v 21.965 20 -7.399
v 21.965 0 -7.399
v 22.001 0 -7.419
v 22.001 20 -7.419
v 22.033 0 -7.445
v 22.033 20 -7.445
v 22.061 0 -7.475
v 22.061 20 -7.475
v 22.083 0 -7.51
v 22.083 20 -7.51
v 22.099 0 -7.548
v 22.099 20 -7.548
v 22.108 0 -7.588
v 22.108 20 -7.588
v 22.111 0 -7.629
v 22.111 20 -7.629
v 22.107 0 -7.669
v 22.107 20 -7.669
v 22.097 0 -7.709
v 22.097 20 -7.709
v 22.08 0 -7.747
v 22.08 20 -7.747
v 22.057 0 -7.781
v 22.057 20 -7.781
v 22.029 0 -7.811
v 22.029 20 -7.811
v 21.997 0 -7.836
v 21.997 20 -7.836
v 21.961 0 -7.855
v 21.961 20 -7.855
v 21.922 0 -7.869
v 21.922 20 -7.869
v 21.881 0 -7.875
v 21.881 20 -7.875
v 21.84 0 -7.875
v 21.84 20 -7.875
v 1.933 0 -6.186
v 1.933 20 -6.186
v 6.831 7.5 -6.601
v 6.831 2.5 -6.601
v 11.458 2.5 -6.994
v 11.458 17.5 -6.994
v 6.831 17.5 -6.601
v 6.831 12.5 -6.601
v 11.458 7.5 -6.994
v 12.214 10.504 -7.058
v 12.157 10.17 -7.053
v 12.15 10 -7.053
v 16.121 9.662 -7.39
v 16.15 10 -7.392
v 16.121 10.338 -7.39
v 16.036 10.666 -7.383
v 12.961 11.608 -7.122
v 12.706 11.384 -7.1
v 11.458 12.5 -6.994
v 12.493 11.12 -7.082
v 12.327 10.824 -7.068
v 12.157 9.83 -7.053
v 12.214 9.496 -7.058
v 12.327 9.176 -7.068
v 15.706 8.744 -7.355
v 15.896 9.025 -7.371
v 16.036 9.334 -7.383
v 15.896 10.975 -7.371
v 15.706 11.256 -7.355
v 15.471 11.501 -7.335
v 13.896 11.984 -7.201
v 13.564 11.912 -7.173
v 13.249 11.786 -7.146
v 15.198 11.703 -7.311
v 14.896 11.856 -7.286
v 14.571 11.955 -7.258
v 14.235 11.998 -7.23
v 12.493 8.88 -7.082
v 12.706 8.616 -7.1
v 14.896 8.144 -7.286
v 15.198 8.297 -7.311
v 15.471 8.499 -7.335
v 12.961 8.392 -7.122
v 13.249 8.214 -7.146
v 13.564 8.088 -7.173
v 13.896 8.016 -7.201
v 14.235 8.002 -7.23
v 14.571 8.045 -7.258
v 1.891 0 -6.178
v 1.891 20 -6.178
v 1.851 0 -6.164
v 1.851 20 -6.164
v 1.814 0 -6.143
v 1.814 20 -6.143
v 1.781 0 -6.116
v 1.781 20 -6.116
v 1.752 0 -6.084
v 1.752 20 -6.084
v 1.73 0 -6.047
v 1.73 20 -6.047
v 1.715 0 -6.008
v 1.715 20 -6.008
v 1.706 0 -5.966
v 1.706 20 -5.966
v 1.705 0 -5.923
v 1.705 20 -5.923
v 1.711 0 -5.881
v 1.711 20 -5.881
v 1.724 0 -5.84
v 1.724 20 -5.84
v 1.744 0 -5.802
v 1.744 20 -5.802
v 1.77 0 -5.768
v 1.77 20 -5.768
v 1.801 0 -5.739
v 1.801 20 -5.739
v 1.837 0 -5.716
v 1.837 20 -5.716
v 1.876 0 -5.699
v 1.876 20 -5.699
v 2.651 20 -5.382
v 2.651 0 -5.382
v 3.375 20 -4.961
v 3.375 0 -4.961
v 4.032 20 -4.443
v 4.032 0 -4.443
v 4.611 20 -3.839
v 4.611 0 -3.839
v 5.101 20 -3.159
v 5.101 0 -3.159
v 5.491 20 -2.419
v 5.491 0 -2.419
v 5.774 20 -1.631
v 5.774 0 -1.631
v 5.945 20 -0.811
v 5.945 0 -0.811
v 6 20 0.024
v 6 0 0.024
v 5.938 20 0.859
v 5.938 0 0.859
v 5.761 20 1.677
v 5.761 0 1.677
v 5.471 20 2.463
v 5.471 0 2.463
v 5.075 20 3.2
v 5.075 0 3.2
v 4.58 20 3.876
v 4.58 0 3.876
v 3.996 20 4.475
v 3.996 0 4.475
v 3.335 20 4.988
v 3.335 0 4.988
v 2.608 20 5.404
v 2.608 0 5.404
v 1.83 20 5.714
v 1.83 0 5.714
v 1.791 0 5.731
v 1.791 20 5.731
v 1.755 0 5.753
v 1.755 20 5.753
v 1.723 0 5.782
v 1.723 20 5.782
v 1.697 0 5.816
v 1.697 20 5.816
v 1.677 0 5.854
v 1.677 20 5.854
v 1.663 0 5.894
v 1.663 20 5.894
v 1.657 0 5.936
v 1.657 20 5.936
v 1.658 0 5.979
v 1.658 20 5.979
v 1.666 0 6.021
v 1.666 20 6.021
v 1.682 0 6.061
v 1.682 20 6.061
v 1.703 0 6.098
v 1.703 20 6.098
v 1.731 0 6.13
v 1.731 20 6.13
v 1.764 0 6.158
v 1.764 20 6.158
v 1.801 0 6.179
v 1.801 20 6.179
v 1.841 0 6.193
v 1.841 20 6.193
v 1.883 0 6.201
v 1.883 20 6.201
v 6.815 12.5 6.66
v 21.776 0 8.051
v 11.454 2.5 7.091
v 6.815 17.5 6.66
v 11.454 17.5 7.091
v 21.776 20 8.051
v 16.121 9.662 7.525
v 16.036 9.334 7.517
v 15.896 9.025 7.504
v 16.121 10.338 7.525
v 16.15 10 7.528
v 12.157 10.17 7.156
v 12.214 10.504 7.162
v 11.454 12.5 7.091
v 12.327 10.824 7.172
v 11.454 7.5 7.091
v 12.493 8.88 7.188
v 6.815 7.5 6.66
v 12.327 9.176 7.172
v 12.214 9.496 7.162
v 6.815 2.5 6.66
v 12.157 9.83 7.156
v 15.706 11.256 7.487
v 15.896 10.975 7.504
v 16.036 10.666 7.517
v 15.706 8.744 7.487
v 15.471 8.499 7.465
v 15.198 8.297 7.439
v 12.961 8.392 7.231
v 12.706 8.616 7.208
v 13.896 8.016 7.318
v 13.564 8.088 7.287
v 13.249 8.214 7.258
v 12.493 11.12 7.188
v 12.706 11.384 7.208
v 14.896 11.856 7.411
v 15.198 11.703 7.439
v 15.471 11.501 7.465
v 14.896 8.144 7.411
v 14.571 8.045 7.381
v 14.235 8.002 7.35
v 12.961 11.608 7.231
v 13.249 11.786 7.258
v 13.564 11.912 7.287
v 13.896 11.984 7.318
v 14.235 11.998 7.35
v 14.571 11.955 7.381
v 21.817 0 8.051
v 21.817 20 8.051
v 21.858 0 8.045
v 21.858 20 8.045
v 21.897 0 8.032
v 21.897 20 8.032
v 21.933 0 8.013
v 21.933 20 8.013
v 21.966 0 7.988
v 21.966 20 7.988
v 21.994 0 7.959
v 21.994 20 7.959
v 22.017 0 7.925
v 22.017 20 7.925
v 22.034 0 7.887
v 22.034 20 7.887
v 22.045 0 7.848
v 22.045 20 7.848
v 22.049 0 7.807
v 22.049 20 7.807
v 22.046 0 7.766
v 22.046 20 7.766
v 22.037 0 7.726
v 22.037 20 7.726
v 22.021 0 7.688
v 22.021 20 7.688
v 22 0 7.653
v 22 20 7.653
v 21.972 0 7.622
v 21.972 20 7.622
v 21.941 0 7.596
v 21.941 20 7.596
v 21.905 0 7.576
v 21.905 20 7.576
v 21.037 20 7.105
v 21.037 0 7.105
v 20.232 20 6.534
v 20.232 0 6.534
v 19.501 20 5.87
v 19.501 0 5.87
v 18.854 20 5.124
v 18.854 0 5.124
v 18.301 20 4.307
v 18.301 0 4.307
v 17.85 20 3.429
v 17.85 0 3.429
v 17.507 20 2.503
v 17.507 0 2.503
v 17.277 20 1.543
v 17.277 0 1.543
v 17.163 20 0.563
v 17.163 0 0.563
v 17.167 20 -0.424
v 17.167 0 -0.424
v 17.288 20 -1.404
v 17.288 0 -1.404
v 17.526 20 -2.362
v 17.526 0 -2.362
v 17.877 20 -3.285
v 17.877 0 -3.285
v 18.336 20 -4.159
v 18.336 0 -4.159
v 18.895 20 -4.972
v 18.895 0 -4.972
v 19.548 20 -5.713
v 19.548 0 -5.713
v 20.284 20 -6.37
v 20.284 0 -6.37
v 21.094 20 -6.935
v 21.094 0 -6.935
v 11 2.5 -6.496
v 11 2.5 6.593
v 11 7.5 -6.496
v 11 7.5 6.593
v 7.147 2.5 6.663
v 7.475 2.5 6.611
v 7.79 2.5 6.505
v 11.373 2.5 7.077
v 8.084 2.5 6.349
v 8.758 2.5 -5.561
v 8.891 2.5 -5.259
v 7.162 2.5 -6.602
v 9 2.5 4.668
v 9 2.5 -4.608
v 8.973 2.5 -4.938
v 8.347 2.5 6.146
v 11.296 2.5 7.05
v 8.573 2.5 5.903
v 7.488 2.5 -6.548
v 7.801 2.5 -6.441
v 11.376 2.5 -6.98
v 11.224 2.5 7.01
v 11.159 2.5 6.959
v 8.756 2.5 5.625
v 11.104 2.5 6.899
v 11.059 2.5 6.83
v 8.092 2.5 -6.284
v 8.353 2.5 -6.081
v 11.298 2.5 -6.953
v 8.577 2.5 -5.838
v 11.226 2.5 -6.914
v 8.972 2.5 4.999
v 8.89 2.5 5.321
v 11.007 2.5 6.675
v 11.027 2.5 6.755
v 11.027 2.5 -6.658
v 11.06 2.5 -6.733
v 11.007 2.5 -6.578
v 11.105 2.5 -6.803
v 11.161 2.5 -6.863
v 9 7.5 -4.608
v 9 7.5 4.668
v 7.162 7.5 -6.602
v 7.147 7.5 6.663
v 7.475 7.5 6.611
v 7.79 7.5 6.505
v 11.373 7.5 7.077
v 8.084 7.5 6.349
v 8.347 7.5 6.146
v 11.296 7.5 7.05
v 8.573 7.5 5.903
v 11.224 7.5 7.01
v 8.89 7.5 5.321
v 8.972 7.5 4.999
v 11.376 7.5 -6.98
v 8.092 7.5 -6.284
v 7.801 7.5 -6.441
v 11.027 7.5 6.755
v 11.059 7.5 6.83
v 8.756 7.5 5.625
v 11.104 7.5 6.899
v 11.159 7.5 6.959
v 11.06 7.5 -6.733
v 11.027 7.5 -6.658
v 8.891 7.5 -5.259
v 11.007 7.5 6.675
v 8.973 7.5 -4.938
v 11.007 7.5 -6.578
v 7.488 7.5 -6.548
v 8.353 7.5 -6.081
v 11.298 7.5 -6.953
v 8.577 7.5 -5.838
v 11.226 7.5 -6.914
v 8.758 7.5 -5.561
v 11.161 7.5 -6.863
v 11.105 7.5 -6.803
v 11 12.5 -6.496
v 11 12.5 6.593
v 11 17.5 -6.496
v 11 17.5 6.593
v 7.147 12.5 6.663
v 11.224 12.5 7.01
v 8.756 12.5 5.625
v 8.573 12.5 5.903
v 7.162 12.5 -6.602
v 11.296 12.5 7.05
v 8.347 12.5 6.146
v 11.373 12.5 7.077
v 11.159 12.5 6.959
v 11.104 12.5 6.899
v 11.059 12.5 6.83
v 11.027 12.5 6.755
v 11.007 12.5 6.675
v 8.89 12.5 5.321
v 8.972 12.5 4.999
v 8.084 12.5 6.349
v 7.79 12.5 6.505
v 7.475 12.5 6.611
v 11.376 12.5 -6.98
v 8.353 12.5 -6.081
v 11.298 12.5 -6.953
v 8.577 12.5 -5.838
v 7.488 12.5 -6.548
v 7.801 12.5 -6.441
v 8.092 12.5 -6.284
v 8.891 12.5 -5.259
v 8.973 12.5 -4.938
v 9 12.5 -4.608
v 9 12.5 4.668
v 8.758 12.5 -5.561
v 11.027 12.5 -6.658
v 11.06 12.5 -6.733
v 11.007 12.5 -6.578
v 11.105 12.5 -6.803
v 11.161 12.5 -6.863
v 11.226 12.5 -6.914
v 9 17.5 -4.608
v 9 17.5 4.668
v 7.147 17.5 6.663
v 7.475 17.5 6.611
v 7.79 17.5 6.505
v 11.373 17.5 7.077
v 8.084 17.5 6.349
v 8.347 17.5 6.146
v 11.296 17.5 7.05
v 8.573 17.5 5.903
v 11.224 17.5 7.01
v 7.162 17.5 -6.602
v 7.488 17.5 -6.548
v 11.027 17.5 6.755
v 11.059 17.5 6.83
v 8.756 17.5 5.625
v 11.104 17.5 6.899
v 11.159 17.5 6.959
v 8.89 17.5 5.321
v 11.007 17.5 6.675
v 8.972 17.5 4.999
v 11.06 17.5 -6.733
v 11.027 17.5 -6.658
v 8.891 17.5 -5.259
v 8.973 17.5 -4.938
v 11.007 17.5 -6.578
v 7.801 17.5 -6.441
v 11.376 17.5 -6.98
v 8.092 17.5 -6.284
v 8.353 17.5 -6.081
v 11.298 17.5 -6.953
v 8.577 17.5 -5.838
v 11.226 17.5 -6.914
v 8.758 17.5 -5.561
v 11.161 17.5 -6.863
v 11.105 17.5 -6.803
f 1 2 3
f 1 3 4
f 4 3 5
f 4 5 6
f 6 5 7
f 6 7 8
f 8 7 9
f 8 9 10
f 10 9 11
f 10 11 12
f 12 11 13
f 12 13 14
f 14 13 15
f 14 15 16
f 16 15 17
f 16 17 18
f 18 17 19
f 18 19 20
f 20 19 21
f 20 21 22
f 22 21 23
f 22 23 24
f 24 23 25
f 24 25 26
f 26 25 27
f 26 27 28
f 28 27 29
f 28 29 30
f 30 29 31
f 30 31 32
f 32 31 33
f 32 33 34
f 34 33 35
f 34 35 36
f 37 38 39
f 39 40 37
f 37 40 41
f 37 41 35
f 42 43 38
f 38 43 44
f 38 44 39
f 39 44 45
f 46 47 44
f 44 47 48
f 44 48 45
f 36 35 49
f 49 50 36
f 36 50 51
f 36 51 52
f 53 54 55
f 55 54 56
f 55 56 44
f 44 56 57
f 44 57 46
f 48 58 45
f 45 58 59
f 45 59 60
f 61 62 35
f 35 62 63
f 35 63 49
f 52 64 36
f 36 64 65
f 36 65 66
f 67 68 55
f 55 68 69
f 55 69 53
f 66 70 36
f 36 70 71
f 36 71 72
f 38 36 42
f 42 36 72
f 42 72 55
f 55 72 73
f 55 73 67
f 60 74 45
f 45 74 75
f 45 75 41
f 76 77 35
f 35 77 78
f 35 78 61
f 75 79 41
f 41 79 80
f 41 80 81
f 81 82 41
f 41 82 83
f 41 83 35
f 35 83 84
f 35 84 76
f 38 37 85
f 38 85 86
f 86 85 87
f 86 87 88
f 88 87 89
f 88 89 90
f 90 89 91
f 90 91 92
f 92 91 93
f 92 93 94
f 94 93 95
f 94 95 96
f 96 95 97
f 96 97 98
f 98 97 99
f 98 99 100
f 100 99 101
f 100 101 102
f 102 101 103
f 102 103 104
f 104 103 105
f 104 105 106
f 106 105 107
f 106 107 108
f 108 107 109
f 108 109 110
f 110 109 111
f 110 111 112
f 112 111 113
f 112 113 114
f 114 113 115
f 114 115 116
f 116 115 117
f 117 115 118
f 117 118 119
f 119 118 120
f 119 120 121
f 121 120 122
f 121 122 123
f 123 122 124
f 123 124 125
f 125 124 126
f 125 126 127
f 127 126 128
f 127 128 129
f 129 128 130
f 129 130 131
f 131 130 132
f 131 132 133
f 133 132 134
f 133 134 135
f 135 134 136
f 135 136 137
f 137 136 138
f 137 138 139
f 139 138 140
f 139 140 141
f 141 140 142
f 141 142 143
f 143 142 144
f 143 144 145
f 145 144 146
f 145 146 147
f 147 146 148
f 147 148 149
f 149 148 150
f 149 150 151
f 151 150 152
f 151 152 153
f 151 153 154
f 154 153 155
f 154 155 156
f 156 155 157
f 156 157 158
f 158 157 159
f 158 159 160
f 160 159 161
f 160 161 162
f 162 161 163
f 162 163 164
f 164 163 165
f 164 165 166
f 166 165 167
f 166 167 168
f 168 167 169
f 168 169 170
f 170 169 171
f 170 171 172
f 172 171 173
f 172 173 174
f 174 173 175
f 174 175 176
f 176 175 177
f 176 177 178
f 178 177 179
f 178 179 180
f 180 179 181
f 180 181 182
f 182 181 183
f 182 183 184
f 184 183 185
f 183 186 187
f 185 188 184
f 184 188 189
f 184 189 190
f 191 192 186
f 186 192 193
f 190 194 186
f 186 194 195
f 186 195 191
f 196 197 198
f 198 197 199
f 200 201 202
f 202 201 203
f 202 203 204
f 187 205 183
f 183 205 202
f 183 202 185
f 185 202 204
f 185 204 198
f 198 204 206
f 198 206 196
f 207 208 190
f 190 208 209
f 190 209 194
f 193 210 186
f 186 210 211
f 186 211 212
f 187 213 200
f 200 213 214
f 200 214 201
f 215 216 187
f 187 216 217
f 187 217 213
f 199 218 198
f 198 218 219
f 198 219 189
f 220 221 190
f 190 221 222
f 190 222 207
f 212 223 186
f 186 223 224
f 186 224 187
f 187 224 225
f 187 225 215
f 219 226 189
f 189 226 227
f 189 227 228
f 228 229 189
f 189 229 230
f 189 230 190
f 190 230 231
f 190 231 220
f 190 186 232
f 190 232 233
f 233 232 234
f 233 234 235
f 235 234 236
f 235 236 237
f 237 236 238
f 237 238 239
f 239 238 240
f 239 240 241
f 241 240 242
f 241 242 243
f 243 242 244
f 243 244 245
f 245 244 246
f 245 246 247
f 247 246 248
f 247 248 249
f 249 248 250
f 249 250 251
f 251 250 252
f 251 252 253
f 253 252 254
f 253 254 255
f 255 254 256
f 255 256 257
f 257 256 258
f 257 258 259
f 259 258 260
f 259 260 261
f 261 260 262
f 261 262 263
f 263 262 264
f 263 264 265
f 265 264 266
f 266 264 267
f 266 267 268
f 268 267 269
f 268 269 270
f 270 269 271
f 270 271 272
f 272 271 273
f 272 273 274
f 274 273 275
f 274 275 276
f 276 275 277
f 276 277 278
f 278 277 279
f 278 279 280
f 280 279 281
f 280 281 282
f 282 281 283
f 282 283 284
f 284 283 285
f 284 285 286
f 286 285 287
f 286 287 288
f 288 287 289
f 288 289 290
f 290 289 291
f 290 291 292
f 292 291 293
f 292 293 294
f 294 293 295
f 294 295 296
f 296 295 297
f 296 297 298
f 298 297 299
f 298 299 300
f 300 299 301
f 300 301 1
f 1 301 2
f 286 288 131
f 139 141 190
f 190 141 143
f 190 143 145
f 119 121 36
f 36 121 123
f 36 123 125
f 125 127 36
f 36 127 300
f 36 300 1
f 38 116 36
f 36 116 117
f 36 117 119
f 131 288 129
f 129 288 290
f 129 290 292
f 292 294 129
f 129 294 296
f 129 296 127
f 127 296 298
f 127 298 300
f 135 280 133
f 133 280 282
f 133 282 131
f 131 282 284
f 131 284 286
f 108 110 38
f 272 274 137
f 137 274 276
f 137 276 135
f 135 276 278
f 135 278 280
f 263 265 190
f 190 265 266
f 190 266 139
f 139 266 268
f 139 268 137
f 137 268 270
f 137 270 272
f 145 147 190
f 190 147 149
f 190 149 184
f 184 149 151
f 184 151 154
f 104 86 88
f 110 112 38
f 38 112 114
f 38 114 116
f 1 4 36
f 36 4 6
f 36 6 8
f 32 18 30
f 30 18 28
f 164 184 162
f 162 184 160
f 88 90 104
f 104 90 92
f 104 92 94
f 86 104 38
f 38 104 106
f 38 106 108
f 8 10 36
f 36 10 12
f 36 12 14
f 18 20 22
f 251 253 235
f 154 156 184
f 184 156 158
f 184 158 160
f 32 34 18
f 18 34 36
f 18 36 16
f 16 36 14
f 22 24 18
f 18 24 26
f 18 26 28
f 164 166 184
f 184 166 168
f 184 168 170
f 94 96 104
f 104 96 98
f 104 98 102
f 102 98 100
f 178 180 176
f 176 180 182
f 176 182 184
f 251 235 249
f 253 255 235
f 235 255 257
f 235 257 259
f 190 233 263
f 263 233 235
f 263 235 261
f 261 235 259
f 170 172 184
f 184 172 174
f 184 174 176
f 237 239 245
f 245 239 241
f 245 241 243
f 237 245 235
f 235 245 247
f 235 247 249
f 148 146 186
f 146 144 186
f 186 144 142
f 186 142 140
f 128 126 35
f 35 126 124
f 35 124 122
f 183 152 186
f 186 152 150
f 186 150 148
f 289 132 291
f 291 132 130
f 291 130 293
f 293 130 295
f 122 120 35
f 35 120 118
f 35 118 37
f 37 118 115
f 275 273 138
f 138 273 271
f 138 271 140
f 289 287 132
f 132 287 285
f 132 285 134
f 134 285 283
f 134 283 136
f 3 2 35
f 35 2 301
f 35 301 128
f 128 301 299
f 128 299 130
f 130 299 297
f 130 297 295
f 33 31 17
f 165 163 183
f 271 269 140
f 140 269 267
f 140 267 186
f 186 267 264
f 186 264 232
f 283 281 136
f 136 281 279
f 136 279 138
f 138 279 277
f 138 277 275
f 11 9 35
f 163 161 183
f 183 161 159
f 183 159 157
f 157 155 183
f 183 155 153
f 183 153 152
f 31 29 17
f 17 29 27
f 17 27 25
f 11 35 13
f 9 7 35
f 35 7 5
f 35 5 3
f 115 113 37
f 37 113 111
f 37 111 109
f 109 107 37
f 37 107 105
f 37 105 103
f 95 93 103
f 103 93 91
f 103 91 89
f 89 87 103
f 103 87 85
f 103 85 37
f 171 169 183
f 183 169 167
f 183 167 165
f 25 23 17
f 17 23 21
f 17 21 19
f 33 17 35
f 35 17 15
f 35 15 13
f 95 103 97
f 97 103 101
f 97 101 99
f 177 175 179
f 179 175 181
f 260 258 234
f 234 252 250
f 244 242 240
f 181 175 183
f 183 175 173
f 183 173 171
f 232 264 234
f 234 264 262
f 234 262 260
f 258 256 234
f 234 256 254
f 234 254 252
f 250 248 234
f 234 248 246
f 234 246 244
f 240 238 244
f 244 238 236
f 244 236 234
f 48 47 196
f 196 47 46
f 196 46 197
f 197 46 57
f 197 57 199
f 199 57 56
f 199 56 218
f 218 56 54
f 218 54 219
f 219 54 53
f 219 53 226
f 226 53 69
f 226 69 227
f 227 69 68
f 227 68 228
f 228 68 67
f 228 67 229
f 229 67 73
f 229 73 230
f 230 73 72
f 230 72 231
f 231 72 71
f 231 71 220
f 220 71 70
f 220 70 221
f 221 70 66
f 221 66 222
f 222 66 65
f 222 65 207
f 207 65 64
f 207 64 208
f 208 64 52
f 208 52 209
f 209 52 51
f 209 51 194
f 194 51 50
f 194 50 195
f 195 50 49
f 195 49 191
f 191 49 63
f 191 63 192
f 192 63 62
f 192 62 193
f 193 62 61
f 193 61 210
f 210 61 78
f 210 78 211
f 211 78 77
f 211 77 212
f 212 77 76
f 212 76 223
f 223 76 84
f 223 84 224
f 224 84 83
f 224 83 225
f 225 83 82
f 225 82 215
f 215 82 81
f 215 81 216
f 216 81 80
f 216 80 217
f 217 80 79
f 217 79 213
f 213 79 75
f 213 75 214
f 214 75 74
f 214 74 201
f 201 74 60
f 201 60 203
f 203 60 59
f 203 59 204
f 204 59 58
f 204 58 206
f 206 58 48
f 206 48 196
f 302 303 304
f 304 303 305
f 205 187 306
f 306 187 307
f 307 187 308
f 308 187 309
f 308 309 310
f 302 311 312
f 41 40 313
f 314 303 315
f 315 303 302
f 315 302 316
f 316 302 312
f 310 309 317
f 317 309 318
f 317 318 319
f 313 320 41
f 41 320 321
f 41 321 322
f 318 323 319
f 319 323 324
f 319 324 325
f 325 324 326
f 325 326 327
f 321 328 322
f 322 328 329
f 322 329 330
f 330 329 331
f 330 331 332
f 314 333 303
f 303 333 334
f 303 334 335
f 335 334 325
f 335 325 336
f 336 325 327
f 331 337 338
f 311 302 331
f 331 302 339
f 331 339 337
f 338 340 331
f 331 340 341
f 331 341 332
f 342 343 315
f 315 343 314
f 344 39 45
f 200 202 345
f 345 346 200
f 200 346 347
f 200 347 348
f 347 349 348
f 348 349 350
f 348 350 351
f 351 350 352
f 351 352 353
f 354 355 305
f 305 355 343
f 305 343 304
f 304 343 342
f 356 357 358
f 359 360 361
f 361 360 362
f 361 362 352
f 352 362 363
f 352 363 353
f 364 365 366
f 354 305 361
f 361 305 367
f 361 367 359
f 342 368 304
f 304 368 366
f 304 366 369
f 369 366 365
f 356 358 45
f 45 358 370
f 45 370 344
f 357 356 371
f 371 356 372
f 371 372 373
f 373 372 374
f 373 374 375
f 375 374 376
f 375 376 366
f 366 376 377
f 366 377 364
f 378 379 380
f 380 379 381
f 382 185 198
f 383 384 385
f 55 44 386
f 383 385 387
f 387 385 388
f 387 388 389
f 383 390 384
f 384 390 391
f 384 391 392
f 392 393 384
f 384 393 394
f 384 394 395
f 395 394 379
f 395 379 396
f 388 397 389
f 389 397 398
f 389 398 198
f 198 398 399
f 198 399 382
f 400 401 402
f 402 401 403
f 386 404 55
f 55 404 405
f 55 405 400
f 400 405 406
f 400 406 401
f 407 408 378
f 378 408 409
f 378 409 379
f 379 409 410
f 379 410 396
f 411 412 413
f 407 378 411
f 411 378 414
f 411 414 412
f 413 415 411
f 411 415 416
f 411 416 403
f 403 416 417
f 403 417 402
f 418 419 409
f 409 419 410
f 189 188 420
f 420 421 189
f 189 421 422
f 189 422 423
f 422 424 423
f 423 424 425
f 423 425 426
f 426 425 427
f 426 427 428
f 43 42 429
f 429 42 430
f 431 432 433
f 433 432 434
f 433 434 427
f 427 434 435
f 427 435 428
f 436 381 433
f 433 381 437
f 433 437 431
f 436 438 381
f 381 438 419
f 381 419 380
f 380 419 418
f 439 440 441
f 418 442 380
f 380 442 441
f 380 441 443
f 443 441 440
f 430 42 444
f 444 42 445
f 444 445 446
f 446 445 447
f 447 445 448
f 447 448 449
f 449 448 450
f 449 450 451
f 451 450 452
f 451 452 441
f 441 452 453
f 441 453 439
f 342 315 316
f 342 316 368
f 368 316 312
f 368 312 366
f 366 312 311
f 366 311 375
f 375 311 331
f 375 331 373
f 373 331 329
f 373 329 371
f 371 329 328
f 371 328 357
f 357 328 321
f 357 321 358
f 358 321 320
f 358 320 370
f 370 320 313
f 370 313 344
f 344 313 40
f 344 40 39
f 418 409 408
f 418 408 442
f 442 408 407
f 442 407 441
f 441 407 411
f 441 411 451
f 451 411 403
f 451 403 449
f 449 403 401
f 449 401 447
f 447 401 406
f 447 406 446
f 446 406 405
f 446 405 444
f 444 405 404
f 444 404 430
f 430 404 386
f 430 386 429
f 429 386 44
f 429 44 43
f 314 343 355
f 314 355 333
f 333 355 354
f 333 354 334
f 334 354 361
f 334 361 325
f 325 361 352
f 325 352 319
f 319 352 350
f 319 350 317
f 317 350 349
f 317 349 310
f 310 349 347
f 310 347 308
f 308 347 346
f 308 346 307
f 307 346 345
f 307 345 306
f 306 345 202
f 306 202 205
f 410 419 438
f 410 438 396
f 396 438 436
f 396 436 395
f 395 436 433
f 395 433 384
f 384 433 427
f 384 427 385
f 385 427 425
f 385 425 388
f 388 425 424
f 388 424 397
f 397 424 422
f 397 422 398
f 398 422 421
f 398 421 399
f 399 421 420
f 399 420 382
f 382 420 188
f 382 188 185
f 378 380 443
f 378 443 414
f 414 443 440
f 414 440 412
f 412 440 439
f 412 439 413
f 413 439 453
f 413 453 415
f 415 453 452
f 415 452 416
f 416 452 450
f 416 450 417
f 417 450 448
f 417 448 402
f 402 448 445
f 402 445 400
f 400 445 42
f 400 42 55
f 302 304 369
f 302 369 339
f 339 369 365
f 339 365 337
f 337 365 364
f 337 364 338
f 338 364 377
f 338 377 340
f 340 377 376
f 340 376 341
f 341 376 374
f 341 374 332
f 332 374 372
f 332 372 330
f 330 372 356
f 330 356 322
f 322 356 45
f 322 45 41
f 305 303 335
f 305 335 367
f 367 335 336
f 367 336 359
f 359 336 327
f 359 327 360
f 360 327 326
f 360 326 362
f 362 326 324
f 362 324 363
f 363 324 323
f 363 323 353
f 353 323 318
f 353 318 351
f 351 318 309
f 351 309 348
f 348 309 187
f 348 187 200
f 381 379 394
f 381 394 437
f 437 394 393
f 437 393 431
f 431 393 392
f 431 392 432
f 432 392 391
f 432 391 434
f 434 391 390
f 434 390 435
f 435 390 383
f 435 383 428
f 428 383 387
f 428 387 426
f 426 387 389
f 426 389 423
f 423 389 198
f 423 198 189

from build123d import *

# Parameters (mm, degrees)
BOSS_EXTRUDE1_DEPTH     = 20
CUT_EXTRUDE1_DEPTH      = 31.882754065
CUT_EXTRUDE1_DEPTH_BACK = 31.882754065
SKETCH2_R               = 2
SKETCH2_W               = 2
SKETCH2_H               = 5
FILLET1_R               = 2
FILLET2_R               = 0.5


with BuildPart() as part:
    # Sketch1 → Boss-Extrude1 (new body)
    with BuildSketch(Plane(origin=(0, 0, 0), x_dir=(1, 0, 0), z_dir=(0, 1, 0))):
        with BuildLine():
            Line((1.933321902, 6.18565004), (21.840134803, 7.875133355))
            ThreePointArc((21.840134803, 7.875133355), (22.103064319, 7.689578117), (21.96535024, 7.398721607))
            ThreePointArc((21.96535024, 7.398721607), (17.149860581, -0.069152491), (21.904969991, -7.575617618))
            ThreePointArc((21.904969991, -7.575617618), (22.040334019, -7.867575246), (21.775916667, -8.051004091))
            Line((21.775916667, -8.051004091), (1.883375697, -6.201039912))
            ThreePointArc((1.883375697, -6.201039912), (1.657998799, -5.979217339), (1.830264266, -5.714029464))
            ThreePointArc((1.830264266, -5.714029464), (5.999951224, -0.024193291), (1.876284769, 5.699083739))
            ThreePointArc((1.876284769, 5.699083739), (1.706163475, 5.965652202), (1.933321902, 6.18565004))
        make_face()
    extrude(amount=BOSS_EXTRUDE1_DEPTH)

    # Sketch2 → Cut-Extrude1 (cut, two sides: drawn at the far end of the back side and taken through both)
    with BuildSketch(Plane.XY.offset(-CUT_EXTRUDE1_DEPTH_BACK)):
        with Locations((14.149793513, 10)):
            Circle(SKETCH2_R)
        with Locations((10, 15)):
            Rectangle(SKETCH2_W, SKETCH2_H)
        with Locations((10, 5)):
            Rectangle(SKETCH2_W, SKETCH2_H)
    extrude(amount=CUT_EXTRUDE1_DEPTH + CUT_EXTRUDE1_DEPTH_BACK, mode=Mode.SUBTRACT)

    # Fillet1
    fillet1_edges = [part.edges().sort_by_distance(p)[0] for p in [
        (9, 5, 6.862870899),
        (9, 15, 6.862870899),
        (9, 15, -6.785396207),
        (9, 5, -6.785396207),
    ]]
    fillet(fillet1_edges, radius=FILLET1_R)

    # Fillet2
    fillet2_edges = [part.edges().sort_by_distance(p)[0] for p in [
        (11, 5, 7.048866663),
        (11, 15, 7.048866663),
        (11, 15, -6.955135414),
        (11, 5, -6.955135414),
    ]]
    fillet(fillet2_edges, radius=FILLET2_R)


solid = part.part
